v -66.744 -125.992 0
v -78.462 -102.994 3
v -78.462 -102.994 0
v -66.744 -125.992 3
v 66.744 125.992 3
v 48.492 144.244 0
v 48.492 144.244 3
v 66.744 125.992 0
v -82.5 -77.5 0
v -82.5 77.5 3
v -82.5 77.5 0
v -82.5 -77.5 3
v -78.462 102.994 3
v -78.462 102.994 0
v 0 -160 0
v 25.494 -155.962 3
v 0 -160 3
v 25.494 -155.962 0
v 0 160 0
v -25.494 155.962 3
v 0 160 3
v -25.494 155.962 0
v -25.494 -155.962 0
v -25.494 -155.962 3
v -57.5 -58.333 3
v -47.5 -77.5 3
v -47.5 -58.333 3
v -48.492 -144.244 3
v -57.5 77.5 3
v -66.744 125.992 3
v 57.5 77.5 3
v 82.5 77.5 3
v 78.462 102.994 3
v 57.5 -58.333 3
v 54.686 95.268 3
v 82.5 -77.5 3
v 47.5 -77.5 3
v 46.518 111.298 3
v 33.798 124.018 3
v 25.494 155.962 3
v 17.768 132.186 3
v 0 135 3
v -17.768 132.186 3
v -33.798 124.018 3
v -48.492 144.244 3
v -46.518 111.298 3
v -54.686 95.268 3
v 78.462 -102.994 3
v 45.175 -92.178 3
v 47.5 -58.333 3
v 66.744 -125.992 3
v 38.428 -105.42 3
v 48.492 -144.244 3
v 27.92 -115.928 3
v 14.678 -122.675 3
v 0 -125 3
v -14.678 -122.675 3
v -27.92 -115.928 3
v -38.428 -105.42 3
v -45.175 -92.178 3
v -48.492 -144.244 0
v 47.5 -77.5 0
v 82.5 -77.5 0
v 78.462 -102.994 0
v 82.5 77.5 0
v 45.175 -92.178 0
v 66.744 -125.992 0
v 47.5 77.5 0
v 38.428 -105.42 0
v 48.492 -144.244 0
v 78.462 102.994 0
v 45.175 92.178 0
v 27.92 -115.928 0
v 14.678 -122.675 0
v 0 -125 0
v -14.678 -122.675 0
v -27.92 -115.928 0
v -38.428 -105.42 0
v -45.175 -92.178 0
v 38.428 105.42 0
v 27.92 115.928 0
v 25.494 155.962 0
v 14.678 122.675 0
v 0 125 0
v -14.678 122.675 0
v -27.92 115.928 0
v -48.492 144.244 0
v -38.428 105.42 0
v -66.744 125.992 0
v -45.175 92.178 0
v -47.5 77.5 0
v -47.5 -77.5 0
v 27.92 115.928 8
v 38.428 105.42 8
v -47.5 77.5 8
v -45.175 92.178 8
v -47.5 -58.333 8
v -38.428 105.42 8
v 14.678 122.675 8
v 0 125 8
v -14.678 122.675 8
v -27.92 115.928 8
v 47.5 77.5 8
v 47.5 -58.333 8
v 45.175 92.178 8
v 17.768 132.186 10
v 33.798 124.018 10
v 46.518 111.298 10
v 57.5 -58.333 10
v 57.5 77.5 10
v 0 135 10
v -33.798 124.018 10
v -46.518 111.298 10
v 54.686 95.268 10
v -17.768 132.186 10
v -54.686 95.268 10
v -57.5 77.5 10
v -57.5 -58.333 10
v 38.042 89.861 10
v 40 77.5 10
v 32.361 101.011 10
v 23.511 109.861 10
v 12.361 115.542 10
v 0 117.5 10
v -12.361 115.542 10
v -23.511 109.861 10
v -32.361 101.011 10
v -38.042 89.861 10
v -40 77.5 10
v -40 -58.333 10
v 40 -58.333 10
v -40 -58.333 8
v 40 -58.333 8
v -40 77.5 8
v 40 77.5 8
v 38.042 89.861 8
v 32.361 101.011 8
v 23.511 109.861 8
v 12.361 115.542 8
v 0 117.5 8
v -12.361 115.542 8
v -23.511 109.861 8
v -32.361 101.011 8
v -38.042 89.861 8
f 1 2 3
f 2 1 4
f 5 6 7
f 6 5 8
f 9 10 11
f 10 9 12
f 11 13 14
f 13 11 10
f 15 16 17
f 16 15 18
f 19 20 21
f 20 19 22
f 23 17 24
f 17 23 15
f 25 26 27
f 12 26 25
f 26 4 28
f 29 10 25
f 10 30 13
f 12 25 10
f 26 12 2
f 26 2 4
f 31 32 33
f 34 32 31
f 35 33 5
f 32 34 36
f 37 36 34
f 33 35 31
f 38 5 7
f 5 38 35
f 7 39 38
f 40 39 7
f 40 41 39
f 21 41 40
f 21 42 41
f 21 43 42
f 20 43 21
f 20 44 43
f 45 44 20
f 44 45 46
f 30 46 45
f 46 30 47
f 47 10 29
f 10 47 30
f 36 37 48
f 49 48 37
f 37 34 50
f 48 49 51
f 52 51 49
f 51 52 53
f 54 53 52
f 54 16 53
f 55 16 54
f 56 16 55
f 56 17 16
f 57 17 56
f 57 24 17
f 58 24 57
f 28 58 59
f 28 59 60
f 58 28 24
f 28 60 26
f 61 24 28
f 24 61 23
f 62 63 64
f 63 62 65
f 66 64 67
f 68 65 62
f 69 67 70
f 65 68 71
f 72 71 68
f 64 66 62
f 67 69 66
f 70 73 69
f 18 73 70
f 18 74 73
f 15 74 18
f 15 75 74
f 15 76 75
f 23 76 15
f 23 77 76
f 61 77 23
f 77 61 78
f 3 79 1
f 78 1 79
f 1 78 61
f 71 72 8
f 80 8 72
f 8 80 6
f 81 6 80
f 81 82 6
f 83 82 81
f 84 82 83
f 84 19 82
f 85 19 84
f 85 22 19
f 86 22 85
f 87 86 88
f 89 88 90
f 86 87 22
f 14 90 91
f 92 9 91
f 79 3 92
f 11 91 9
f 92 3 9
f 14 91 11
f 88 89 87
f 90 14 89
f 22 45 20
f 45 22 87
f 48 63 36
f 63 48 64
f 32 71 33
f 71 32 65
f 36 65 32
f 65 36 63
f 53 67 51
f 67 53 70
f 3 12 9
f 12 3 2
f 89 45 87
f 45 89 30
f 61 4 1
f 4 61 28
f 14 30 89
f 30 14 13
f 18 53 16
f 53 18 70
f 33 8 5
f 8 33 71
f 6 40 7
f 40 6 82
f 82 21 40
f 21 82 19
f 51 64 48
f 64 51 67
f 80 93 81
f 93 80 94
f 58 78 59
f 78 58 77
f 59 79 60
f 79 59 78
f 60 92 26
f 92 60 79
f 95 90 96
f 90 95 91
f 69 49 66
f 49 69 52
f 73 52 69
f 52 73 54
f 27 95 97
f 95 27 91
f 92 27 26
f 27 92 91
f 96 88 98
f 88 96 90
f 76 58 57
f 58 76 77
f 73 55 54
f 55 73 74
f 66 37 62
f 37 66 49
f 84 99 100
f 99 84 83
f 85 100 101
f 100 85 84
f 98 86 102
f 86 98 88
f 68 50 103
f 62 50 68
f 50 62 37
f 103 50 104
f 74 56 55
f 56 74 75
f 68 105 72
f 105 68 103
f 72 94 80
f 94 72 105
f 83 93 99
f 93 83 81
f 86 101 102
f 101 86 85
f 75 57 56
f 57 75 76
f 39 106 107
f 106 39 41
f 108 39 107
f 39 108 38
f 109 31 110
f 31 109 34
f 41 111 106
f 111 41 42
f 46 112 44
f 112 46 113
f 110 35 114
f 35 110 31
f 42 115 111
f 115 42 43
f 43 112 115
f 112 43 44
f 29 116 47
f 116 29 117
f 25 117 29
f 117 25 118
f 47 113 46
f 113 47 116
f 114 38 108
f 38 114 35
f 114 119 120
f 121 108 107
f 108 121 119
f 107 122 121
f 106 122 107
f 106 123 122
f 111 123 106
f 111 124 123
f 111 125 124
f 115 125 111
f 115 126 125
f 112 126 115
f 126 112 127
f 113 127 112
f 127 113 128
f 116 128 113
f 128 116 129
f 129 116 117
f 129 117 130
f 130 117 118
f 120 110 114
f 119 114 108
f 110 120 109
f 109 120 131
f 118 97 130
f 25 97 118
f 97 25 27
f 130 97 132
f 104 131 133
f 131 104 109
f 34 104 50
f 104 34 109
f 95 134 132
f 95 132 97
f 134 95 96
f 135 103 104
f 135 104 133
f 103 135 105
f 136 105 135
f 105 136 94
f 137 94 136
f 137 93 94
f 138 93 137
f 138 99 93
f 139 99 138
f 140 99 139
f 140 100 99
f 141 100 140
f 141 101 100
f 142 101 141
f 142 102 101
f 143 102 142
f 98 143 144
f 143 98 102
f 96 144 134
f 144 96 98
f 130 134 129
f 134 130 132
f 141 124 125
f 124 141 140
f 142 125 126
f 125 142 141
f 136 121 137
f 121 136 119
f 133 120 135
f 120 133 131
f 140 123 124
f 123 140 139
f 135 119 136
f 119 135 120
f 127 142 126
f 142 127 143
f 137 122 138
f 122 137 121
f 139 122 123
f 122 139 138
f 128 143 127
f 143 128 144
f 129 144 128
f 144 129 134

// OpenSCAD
$fn = 100;
union()
{
  union()
  {
    difference()
    {
      linear_extrude(height = 3, center = false, convexity = undef, twist = undef, slices = undef, scale = 1, $fn = 20)
      {
        rotate(a = 90, v = [0, 0, 1])
        {
          union()
          {
            square(size = [155, 165], center = true);
            translate(v = [77.5, 0, 0])
            {
              circle(r = 82.5);
            }
            translate(v = [-77.5, 0, 0])
            {
              circle(r = 82.5);
            }
          }
        }
      }
      translate(v = [0, 0, -1])
      {
        linear_extrude(height = 5, center = false, convexity = undef, twist = undef, slices = undef, scale = 1, $fn = 20)
        {
          rotate(a = 90, v = [0, 0, 1])
          {
            union()
            {
              square(size = [155, 95], center = true);
              translate(v = [77.5, 0, 0])
              {
                circle(r = 47.5);
              }
              translate(v = [-77.5, 0, 0])
              {
                circle(r = 47.5);
              }
            }
          }
        }
      }
    }
  }
  intersection()
  {
    difference()
    {
      linear_extrude(height = 10, center = false, convexity = undef, twist = undef, slices = undef, scale = 1, $fn = 20)
      {
        rotate(a = 90, v = [0, 0, 1])
        {
          union()
          {
            square(size = [155, 115], center = true);
            translate(v = [77.5, 0, 0])
            {
              circle(r = 57.5);
            }
            translate(v = [-77.5, 0, 0])
            {
              circle(r = 57.5);
            }
          }
        }
      }
      translate(v = [0, 0, -1])
      {
        linear_extrude(height = 20, center = false, convexity = undef, twist = undef, slices = undef, scale = 1, $fn = 20)
        {
          rotate(a = 90, v = [0, 0, 1])
          {
            union()
            {
              square(size = [155, 95], center = true);
              translate(v = [77.5, 0, 0])
              {
                circle(r = 47.5);
              }
              translate(v = [-77.5, 0, 0])
              {
                circle(r = 47.5);
              }
            }
          }
        }
      }
    }
    translate(v = [0, 41.666666666666664, 0])
    {
      cube(size = [200, 200, 100], center = true);
    }
  }
  difference()
  {
    intersection()
    {
      translate(v = [0, 0, 10])
      {
        cube(size = [95, 250, 4], center = true);
      }
      linear_extrude(height = 10, center = false, convexity = undef, twist = undef, slices = undef, scale = 1, $fn = 20)
      {
        rotate(a = 90, v = [0, 0, 1])
        {
          union()
          {
            square(size = [155, 105], center = true);
            translate(v = [77.5, 0, 0])
            {
              circle(r = 52.5);
            }
            translate(v = [-77.5, 0, 0])
            {
              circle(r = 52.5);
            }
          }
        }
      }
      translate(v = [0, 41.666666666666664, 0])
      {
        cube(size = [200, 200, 100], center = true);
      }
    }
    linear_extrude(height = 20, center = false, convexity = undef, twist = undef, slices = undef, scale = 1, $fn = 20)
    {
      rotate(a = 90, v = [0, 0, 1])
      {
        union()
        {
          square(size = [155, 80], center = true);
          translate(v = [77.5, 0, 0])
          {
            circle(r = 40);
          }
          translate(v = [-77.5, 0, 0])
          {
            circle(r = 40);
          }
        }
      }
    }
  }
}
